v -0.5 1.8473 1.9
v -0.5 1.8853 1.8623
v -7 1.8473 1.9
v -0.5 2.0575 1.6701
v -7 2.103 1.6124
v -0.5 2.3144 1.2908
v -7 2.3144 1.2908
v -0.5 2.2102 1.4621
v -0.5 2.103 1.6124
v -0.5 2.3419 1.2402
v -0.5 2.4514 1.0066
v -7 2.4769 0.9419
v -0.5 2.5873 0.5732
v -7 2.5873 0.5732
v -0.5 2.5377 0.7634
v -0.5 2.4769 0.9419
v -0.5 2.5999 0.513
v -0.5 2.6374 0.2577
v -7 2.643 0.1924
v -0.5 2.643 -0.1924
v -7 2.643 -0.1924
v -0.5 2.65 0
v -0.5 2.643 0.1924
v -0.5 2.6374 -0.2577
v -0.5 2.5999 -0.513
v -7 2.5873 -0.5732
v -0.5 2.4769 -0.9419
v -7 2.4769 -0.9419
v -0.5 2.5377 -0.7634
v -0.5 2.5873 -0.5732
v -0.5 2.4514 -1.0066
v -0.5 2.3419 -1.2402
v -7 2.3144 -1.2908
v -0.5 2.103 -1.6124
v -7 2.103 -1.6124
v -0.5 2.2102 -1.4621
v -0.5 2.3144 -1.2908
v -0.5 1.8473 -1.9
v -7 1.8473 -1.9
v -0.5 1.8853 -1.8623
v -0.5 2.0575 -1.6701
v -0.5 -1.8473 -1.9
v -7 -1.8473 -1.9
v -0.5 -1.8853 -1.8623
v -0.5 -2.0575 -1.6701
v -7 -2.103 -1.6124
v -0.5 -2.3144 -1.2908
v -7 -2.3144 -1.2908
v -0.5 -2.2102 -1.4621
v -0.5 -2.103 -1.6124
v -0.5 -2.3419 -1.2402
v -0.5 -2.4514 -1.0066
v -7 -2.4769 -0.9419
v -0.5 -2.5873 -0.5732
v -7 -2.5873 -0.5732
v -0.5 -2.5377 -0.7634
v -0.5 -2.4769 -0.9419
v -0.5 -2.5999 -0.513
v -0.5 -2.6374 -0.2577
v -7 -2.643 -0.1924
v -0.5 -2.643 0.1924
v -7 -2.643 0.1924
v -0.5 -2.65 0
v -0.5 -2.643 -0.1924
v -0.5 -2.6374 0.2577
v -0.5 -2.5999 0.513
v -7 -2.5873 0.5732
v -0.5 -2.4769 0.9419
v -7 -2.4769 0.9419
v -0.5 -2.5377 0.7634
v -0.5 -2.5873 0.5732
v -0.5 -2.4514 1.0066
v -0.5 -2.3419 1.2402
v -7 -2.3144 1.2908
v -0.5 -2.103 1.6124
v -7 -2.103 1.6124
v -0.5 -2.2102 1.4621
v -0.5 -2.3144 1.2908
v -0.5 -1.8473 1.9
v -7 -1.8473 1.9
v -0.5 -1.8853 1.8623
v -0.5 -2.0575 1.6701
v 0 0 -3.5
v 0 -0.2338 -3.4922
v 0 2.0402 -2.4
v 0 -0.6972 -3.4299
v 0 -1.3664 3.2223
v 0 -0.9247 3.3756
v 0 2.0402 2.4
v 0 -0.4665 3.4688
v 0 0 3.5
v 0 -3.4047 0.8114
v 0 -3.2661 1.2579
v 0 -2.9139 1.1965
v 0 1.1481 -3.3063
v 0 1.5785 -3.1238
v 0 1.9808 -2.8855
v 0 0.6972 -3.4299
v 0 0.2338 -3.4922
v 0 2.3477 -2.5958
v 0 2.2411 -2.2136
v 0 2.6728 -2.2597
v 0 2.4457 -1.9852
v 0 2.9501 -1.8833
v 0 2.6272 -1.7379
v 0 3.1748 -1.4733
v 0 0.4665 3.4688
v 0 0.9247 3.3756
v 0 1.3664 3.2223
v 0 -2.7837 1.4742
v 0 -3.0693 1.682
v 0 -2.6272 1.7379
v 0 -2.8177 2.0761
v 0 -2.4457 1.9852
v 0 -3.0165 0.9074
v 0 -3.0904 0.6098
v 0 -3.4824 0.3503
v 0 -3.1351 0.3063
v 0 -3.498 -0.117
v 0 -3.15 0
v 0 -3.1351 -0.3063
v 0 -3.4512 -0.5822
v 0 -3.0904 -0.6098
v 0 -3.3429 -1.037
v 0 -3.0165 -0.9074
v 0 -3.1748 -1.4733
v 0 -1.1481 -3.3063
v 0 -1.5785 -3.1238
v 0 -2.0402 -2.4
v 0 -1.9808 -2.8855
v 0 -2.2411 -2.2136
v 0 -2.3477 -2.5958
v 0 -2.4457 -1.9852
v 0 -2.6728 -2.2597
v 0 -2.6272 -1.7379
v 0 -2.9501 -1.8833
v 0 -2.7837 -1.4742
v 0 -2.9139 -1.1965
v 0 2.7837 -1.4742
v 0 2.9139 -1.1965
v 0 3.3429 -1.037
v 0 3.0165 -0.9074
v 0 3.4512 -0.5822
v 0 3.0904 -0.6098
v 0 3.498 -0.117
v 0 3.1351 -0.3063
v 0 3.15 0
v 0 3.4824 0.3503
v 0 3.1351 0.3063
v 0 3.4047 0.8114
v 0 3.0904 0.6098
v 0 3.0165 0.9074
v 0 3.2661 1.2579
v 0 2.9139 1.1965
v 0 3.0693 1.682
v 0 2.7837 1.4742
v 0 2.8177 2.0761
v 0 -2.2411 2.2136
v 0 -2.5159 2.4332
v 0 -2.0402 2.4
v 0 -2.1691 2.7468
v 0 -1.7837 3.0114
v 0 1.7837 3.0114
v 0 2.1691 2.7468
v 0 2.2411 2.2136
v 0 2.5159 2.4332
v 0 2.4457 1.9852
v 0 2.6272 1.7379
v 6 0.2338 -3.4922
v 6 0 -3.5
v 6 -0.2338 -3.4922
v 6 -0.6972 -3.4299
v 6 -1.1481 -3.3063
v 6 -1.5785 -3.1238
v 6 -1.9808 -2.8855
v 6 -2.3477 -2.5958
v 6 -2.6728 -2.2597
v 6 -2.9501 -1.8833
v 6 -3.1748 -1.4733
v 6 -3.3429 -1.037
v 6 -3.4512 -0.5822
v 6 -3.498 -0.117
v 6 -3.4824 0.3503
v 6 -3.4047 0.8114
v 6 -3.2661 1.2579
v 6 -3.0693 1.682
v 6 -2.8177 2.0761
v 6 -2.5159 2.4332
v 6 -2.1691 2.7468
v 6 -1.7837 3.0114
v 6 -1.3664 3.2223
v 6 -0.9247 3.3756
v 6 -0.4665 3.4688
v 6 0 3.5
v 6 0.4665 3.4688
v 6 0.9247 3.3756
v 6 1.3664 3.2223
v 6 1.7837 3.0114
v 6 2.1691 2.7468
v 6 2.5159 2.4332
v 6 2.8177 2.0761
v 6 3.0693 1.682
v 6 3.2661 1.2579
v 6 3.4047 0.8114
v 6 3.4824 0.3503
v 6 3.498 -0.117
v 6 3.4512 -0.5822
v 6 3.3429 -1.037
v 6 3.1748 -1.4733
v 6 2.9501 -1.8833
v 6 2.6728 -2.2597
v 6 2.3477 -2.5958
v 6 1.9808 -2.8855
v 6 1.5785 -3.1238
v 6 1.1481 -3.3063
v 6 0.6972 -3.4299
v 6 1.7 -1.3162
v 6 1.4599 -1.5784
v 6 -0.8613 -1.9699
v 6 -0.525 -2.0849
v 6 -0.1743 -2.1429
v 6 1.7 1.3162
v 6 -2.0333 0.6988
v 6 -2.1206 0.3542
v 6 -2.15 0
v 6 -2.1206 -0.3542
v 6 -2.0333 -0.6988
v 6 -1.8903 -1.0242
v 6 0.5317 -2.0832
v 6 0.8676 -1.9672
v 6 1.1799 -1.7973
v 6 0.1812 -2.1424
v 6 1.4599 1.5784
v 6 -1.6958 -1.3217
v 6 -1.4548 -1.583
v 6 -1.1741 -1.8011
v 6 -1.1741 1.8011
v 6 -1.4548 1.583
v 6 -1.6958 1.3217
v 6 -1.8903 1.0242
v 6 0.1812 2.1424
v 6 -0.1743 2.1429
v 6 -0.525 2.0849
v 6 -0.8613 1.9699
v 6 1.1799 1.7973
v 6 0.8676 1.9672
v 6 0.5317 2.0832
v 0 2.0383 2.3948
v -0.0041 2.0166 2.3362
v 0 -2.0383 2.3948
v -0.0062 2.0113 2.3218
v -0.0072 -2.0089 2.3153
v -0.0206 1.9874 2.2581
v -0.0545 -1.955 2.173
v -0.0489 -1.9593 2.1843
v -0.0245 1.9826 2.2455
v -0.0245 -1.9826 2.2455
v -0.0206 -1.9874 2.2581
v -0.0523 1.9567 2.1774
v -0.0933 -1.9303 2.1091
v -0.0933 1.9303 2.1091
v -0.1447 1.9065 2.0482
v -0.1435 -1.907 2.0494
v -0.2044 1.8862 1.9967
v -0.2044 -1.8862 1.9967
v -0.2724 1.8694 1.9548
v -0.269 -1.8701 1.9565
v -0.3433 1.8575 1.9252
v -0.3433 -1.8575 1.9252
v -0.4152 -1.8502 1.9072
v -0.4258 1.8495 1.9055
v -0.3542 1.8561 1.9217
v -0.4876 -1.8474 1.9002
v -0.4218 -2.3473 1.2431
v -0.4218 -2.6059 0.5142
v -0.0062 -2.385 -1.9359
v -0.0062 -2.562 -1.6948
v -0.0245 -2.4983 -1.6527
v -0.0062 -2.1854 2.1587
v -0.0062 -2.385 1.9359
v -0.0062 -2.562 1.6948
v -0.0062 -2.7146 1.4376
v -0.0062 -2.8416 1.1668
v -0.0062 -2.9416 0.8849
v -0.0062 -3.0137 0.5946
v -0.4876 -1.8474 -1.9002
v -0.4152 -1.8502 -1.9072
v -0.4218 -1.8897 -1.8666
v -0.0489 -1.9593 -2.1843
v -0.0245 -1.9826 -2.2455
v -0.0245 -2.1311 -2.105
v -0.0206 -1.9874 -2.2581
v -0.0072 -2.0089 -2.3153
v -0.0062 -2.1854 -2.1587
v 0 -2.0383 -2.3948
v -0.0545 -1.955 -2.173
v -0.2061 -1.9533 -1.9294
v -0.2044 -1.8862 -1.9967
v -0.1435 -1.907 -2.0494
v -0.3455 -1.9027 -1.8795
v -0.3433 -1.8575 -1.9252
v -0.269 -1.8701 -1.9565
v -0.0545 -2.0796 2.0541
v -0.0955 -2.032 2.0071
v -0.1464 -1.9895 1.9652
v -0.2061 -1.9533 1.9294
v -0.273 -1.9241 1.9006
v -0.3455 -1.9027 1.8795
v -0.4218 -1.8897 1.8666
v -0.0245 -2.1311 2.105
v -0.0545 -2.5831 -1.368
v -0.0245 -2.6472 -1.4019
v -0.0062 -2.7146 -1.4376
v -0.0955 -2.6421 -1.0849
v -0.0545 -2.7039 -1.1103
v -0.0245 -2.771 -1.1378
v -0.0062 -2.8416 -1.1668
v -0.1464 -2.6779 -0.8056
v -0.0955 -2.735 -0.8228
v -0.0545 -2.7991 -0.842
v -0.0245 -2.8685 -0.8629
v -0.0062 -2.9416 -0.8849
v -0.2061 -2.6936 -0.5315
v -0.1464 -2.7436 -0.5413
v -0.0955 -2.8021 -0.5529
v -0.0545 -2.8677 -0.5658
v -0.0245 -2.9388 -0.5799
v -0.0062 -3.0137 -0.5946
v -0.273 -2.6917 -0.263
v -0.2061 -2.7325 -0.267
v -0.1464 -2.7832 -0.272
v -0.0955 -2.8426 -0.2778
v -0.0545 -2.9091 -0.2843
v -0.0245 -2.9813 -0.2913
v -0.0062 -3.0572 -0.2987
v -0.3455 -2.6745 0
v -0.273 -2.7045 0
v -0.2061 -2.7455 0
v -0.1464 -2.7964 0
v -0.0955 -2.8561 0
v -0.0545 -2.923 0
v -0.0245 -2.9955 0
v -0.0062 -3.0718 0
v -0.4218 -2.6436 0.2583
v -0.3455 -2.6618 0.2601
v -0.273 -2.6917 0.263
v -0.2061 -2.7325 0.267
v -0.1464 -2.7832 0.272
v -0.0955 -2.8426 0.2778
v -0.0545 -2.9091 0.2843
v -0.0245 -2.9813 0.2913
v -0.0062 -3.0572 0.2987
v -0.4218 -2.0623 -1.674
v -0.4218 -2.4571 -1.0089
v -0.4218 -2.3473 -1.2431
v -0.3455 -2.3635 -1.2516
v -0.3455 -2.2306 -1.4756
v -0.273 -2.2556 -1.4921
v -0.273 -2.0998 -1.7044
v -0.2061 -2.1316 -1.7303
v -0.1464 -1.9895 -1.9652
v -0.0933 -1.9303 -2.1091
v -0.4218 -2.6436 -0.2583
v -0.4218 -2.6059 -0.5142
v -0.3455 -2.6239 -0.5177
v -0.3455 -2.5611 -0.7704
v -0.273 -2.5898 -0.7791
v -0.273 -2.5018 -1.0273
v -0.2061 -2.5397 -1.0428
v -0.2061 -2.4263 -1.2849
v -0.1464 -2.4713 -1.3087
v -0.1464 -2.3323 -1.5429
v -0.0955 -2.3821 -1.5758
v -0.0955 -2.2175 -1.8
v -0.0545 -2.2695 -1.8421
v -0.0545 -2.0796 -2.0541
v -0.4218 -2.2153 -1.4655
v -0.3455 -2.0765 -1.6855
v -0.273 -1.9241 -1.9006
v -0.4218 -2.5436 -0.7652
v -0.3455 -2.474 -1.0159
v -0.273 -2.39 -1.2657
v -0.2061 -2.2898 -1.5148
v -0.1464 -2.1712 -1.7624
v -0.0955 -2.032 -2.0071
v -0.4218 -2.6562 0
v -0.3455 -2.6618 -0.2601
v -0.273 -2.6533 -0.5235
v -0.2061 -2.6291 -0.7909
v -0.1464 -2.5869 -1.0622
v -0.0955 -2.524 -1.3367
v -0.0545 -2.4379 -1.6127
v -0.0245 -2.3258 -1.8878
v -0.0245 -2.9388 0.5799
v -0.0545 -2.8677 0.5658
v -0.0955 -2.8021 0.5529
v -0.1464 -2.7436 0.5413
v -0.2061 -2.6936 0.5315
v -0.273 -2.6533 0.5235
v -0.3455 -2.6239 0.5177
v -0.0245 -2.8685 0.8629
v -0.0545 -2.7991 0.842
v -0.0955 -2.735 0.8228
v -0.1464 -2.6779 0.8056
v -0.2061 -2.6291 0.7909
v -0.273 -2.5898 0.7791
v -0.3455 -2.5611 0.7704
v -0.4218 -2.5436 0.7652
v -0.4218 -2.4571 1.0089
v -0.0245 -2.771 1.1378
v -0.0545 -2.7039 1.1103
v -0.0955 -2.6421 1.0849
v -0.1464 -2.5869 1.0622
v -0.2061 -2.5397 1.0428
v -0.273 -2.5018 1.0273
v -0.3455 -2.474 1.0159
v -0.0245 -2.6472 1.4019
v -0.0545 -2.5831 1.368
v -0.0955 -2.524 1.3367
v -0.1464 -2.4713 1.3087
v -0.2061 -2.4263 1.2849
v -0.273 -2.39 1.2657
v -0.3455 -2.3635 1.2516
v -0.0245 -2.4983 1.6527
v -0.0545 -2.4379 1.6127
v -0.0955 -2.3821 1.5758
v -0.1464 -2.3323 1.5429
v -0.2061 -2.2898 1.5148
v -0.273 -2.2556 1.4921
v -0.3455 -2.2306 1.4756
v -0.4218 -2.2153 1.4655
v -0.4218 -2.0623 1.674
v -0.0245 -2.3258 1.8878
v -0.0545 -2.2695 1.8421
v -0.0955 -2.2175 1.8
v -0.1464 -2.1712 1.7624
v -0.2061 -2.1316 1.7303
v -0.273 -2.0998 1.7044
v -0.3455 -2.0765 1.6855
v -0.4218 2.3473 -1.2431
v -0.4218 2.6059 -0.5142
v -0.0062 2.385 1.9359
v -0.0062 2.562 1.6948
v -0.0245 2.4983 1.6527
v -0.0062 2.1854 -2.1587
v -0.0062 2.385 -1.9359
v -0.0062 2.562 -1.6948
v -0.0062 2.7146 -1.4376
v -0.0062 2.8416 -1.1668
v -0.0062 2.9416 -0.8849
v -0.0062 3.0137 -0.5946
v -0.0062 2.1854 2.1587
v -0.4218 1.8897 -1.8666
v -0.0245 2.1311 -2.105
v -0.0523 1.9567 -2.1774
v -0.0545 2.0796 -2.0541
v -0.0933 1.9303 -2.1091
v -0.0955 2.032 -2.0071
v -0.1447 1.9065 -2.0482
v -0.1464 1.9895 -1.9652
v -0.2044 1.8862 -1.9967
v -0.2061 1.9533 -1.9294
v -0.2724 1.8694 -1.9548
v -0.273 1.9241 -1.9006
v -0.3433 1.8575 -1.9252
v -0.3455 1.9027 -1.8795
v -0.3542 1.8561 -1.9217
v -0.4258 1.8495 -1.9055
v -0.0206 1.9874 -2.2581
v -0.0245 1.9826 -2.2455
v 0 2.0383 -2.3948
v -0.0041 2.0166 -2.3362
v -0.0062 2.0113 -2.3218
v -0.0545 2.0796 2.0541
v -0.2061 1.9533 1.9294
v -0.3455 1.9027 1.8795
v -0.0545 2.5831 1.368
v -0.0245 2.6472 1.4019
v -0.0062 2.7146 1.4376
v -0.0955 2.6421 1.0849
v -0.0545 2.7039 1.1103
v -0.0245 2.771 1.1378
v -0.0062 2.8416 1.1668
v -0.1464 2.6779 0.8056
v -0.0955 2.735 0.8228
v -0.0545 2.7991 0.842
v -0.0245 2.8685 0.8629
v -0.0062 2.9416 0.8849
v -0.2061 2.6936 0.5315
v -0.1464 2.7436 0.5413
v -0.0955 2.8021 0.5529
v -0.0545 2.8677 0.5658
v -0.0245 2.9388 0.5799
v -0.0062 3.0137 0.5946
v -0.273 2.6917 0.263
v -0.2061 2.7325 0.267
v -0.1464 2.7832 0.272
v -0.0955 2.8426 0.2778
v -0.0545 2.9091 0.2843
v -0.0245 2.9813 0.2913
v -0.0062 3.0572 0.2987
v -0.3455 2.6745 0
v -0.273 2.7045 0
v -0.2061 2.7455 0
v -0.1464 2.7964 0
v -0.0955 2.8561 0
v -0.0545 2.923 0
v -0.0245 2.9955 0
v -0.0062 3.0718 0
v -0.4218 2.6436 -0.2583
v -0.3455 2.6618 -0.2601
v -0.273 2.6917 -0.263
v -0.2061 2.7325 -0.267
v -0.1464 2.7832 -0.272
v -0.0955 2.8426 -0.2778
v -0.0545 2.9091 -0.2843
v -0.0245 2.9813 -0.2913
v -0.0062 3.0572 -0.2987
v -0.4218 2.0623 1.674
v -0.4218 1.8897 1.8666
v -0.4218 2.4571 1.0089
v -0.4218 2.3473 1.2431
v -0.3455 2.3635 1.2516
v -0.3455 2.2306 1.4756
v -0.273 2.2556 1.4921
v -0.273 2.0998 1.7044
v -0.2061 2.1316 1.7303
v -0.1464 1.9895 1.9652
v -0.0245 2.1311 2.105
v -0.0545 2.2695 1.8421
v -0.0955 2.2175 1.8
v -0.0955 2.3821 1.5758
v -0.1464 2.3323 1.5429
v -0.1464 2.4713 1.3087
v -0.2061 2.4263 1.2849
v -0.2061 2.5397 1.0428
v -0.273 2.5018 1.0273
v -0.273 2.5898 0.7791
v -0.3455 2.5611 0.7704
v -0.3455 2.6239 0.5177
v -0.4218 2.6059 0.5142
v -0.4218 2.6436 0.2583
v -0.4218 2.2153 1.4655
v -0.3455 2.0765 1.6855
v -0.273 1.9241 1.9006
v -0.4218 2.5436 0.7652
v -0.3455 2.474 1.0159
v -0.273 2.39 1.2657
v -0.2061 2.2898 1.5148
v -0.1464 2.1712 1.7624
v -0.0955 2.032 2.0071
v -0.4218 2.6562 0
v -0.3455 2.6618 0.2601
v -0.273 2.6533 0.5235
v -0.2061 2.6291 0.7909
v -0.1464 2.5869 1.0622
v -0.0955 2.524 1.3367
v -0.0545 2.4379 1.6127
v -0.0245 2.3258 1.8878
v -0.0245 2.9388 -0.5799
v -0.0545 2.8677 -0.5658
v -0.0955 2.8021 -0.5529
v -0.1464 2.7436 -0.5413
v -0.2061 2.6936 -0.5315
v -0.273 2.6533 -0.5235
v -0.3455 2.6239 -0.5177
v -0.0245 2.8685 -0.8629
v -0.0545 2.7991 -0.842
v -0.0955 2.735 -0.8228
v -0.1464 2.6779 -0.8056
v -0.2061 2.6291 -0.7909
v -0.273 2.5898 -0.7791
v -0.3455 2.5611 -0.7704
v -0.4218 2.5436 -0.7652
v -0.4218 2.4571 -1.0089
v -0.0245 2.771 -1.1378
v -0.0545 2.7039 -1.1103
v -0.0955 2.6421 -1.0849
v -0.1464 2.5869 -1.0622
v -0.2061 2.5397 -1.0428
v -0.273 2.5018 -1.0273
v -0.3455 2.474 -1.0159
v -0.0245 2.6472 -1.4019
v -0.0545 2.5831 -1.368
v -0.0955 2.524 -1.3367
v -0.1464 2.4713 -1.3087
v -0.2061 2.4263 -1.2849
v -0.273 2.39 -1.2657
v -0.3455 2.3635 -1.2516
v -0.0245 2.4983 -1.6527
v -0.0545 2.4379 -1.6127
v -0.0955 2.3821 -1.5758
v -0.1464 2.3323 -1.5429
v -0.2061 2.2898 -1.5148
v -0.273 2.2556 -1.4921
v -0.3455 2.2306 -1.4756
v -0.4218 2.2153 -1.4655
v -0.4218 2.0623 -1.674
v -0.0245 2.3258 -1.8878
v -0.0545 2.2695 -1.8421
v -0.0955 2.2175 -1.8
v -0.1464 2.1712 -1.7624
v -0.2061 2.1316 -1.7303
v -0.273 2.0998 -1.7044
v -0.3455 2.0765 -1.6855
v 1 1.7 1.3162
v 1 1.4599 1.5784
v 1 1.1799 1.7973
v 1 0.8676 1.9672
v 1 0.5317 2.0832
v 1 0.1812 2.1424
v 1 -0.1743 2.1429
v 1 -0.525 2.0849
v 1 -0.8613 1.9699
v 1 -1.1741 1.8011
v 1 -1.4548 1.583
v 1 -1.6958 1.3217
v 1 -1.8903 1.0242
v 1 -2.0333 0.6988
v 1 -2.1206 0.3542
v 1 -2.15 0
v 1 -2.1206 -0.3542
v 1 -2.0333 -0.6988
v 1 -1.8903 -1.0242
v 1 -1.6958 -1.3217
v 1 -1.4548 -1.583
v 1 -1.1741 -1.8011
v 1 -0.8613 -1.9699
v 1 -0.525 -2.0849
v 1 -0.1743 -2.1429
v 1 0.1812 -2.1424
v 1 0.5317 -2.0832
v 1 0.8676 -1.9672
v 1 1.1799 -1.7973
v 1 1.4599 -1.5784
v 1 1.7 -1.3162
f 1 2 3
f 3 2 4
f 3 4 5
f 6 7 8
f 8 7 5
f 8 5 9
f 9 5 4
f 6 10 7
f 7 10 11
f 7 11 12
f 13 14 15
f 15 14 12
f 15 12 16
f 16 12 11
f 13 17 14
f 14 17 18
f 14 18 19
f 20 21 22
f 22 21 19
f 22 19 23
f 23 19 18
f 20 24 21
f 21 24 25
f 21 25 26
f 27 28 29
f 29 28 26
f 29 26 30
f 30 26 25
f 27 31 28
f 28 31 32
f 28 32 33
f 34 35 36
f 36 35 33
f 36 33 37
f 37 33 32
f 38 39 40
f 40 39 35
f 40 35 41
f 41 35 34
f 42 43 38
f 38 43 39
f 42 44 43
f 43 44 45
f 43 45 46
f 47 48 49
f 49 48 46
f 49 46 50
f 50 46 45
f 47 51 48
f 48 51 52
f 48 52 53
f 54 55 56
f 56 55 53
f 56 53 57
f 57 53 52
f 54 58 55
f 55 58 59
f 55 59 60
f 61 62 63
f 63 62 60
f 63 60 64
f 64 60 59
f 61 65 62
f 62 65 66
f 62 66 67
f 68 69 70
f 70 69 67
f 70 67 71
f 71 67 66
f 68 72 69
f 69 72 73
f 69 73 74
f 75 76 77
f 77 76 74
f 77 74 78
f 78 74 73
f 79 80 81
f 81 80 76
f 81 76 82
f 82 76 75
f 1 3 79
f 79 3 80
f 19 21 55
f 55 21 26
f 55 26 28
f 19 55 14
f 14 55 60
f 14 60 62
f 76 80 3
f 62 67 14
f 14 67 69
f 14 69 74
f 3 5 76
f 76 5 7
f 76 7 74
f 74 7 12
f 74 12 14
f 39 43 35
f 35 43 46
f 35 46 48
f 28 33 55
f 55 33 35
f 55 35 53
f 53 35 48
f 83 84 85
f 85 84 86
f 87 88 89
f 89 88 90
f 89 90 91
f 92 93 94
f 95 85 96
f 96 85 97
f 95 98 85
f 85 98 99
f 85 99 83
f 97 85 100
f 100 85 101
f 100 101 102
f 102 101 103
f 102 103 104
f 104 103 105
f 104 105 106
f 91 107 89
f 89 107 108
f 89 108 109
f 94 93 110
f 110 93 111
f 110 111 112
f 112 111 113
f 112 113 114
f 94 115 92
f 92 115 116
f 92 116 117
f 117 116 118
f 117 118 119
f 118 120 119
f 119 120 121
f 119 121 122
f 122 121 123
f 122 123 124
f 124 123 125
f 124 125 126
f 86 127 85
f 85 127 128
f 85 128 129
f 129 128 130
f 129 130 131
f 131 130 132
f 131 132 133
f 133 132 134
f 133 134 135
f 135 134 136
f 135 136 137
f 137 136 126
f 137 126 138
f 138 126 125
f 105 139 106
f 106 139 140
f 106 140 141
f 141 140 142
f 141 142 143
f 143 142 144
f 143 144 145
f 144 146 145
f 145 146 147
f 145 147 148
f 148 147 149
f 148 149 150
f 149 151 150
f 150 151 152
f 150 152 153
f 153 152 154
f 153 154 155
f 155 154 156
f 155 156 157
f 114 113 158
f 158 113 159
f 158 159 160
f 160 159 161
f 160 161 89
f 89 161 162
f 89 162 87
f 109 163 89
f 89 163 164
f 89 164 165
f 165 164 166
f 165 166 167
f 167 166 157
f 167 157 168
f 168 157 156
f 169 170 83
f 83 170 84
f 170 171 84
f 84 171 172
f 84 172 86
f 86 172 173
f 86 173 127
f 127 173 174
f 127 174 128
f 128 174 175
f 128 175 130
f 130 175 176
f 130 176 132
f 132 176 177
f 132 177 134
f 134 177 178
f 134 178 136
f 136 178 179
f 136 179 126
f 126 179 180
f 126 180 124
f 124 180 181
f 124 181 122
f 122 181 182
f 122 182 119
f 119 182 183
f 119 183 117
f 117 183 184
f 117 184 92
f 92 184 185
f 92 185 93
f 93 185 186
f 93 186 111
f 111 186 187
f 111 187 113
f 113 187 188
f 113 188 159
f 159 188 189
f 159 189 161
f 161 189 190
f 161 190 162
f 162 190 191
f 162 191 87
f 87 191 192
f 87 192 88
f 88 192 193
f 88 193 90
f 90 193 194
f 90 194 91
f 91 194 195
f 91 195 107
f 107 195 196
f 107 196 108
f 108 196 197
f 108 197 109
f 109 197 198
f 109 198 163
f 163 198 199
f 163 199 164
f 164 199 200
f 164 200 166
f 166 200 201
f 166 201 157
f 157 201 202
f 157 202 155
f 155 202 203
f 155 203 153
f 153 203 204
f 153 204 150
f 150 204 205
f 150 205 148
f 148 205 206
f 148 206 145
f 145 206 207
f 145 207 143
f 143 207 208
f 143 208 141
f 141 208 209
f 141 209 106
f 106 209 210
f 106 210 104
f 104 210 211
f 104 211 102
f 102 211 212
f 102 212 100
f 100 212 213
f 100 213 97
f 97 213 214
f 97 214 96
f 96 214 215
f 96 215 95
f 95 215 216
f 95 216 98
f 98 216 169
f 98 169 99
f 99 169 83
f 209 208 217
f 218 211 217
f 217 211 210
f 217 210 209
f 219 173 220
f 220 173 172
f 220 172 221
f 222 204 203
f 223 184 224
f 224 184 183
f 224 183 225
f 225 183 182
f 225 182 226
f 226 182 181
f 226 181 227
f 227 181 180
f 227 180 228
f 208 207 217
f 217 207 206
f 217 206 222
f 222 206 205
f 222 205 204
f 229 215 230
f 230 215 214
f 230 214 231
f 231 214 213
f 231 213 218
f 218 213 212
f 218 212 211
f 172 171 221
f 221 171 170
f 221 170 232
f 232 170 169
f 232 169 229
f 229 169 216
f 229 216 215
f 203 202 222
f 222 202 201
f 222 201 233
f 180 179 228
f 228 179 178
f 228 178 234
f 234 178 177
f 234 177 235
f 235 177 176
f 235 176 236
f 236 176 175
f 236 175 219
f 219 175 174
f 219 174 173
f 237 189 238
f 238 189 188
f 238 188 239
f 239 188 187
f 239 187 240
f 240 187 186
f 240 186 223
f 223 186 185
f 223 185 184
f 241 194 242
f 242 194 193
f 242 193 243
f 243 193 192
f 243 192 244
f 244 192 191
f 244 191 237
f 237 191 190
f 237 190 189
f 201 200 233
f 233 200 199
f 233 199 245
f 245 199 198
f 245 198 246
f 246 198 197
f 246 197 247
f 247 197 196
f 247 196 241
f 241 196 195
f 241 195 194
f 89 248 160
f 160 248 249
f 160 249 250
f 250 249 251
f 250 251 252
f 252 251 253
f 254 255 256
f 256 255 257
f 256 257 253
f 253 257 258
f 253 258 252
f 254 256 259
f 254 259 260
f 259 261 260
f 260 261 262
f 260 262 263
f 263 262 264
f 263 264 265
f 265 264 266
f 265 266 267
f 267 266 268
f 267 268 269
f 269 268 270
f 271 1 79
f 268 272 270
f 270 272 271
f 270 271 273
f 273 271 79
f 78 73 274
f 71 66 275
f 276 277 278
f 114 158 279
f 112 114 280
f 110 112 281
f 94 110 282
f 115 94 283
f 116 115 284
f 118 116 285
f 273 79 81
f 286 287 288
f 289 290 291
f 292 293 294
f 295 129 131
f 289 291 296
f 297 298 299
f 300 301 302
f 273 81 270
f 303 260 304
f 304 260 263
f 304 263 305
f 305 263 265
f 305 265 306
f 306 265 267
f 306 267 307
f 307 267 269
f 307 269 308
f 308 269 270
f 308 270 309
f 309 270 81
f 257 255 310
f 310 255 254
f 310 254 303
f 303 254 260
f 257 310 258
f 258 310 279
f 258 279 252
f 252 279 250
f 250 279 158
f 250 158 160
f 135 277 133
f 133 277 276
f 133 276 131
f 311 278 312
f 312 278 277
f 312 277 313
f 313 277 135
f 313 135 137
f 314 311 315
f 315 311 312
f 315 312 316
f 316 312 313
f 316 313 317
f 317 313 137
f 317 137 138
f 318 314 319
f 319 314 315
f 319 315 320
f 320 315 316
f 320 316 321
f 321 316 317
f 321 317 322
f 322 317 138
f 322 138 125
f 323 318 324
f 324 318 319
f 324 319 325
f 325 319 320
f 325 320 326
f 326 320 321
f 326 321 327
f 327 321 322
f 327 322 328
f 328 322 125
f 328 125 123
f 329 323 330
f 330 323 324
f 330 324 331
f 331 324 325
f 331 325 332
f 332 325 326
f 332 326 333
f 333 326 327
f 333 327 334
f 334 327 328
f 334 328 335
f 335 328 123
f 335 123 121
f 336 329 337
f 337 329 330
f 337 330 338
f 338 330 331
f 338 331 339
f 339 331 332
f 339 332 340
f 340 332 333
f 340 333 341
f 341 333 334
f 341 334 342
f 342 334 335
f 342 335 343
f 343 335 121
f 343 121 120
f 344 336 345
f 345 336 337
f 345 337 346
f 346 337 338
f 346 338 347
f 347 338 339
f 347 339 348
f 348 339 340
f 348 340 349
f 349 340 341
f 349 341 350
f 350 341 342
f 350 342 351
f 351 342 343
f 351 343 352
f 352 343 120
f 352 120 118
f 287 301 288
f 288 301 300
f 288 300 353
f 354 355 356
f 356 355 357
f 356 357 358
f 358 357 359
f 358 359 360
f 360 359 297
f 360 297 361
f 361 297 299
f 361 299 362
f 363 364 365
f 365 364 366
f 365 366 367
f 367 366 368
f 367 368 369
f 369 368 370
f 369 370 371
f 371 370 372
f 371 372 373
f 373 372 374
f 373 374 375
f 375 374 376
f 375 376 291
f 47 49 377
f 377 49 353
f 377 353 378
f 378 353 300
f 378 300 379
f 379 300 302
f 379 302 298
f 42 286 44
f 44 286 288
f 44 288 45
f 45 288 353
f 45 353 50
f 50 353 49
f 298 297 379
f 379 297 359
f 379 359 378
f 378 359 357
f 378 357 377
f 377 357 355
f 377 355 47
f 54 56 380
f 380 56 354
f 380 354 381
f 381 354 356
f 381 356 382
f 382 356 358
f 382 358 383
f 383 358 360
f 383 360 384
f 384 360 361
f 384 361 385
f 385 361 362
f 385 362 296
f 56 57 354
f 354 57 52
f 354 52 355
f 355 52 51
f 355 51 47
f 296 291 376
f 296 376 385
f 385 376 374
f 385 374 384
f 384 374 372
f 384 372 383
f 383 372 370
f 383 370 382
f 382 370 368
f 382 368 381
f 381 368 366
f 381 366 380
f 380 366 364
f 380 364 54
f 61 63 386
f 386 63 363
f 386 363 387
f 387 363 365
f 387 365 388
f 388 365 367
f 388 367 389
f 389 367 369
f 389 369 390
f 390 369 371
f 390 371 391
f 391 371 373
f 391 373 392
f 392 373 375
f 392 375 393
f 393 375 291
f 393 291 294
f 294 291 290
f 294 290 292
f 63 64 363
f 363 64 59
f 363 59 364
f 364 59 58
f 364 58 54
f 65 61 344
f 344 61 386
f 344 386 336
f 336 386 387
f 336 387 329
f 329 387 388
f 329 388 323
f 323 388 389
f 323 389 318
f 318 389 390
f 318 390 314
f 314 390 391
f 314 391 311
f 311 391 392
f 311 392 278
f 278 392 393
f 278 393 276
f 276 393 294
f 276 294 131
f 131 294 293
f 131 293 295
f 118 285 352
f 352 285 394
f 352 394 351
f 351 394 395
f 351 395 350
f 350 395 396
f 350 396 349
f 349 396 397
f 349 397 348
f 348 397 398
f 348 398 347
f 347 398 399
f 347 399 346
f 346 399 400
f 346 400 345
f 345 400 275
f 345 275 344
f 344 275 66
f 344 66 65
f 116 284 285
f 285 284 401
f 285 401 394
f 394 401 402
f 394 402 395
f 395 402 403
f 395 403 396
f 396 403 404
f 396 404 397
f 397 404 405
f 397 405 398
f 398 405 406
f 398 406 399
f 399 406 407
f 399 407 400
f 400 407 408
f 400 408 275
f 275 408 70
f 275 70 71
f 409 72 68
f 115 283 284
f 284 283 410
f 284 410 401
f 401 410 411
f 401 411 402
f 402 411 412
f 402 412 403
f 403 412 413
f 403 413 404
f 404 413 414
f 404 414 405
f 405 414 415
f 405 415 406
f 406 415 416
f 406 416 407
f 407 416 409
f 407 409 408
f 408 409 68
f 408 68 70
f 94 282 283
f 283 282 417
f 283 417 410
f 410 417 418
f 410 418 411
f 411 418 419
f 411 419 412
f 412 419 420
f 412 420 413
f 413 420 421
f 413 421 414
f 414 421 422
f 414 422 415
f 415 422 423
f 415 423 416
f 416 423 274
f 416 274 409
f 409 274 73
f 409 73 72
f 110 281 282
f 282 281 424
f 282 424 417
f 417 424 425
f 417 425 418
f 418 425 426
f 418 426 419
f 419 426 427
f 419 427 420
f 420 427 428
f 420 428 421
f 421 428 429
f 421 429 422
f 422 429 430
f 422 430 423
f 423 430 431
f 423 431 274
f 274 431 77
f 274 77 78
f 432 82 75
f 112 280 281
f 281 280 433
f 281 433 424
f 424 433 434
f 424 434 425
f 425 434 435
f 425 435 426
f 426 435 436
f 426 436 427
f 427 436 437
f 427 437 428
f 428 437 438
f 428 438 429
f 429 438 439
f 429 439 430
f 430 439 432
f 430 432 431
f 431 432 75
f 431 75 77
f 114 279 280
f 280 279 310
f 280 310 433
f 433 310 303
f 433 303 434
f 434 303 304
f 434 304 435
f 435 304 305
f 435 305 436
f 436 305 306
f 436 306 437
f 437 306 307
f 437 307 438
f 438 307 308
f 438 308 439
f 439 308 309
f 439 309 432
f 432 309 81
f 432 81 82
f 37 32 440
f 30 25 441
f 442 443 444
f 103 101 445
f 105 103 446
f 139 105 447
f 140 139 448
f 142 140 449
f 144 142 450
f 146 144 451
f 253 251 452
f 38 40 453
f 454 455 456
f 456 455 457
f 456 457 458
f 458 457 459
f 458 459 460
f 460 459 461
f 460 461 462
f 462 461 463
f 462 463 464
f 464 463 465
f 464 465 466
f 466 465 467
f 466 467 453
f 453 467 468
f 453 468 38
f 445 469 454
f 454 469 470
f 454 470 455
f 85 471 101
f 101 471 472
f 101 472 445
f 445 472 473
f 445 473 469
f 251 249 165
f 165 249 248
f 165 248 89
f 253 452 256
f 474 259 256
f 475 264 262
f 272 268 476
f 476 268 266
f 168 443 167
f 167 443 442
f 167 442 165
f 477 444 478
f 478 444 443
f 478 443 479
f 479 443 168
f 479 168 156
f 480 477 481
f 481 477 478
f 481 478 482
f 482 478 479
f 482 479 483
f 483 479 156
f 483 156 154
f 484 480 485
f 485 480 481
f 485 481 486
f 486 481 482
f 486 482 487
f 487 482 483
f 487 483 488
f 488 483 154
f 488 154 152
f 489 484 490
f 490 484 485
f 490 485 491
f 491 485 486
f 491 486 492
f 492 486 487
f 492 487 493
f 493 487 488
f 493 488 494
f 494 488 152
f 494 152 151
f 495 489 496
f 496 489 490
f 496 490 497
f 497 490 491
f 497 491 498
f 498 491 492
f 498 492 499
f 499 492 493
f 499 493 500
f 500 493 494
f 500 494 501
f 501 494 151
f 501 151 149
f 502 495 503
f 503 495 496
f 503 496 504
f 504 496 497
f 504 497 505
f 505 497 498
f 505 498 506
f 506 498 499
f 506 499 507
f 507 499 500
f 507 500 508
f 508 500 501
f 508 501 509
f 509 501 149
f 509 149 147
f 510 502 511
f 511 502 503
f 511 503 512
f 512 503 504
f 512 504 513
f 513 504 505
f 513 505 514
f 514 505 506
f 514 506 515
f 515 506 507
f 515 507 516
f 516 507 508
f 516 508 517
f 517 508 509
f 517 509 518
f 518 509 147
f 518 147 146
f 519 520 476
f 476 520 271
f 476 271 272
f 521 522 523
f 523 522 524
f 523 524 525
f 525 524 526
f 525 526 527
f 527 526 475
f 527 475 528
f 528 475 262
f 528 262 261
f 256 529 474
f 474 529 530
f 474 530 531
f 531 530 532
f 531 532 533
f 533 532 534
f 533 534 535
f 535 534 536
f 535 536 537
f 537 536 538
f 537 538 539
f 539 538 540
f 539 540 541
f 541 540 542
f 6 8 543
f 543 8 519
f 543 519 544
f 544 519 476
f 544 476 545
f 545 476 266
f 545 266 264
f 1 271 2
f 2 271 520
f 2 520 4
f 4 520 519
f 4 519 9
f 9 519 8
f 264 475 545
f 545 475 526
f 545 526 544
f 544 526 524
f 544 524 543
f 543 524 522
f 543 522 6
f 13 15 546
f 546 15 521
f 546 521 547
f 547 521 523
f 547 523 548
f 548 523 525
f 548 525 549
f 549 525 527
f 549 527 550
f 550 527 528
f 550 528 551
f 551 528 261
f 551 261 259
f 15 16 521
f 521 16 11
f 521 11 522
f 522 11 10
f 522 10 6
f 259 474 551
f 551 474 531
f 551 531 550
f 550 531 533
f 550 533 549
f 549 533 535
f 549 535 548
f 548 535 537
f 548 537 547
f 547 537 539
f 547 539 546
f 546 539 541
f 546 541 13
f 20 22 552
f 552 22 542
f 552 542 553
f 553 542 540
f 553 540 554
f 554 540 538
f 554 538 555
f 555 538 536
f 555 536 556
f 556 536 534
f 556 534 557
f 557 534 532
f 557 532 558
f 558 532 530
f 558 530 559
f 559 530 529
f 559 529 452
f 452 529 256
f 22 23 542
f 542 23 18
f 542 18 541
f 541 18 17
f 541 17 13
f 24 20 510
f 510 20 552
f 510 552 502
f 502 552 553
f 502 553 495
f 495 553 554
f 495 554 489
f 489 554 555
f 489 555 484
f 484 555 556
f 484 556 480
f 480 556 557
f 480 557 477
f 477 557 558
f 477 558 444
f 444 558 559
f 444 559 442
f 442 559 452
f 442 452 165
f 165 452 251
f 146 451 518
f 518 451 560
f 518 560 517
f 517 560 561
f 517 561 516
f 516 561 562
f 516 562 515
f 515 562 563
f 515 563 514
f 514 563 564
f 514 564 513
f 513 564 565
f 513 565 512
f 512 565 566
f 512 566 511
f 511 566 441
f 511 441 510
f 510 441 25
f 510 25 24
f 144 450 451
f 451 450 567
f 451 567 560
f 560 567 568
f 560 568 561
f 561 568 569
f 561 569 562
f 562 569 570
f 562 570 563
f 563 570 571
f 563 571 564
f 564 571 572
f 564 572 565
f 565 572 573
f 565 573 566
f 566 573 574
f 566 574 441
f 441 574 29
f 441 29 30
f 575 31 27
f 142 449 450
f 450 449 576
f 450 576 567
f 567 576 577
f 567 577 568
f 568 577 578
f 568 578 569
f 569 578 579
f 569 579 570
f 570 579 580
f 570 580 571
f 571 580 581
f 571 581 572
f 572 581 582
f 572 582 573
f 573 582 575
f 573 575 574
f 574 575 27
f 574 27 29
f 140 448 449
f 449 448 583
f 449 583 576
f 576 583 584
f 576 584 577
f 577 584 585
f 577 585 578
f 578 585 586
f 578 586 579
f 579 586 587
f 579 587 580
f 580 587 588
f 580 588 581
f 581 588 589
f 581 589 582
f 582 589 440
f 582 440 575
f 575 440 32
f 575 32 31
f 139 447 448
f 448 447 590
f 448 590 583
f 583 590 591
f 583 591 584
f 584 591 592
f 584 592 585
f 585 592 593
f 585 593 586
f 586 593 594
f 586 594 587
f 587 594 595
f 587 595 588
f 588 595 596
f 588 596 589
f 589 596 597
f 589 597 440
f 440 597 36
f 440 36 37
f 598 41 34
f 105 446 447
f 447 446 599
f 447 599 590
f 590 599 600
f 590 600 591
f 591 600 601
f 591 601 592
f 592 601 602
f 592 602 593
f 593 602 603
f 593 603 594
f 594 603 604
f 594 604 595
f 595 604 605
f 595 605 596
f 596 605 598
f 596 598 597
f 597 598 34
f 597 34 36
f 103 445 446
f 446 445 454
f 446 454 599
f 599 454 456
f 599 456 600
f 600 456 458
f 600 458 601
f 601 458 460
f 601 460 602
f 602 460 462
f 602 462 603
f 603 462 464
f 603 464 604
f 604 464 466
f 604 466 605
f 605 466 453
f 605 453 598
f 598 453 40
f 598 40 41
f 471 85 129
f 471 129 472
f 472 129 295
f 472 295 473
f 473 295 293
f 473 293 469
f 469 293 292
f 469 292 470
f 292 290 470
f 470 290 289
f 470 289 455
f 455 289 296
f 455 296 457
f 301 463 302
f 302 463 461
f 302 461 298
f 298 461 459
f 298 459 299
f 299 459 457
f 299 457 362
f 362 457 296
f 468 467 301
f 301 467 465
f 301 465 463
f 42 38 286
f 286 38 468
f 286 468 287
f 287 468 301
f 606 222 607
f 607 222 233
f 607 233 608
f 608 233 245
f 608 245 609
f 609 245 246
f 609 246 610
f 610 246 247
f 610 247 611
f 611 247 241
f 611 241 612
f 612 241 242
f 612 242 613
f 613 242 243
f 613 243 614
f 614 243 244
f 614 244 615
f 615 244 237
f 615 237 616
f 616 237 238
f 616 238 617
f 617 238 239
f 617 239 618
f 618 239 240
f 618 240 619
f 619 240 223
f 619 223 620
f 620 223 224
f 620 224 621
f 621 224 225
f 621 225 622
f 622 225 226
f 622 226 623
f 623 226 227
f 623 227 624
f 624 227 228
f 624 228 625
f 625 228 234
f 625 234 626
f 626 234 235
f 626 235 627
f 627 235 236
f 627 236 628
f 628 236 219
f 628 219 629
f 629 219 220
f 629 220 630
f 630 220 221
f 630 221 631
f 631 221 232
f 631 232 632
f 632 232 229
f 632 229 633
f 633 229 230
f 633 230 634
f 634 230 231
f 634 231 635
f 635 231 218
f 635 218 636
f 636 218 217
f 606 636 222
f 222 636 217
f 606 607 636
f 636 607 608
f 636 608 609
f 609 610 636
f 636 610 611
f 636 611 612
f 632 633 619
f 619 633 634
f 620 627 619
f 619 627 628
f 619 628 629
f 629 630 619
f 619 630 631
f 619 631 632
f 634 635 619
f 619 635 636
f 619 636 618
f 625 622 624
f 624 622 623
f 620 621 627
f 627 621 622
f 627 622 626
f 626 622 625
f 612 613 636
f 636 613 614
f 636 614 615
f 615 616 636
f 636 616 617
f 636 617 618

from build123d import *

# Parameters (mm, degrees)
BOSS_EXTRUDE1_DEPTH = 7
SKETCH5_R           = 3.5
BOSS_EXTRUDE2_DEPTH = 6
FILLET1_R           = 0.5
CUT_EXTRUDE1_DEPTH  = 5


with BuildPart() as part:
    # Sketch1 → Boss-Extrude1 (new body)
    with BuildSketch(Plane(origin=(0, 0, 0), x_dir=(0, 0, -1), z_dir=(1, 0, 0))):
        with BuildLine():
            Line((-1.9, 1.84729532), (-1.9, -1.84729532))
            ThreePointArc((-1.9, -1.84729532), (0, -2.65), (1.9, -1.84729532))
            Line((1.9, -1.84729532), (1.9, 1.84729532))
            ThreePointArc((1.9, 1.84729532), (0, 2.65), (-1.9, 1.84729532))
        make_face()
    extrude(amount=-BOSS_EXTRUDE1_DEPTH)

    # Sketch5 → Boss-Extrude2 (add)
    with BuildSketch(Plane(origin=(0, 0, 0), x_dir=(0, 0, -1), z_dir=(1, 0, 0))):
        Circle(SKETCH5_R)
    extrude(amount=BOSS_EXTRUDE2_DEPTH)

    # Fillet1
    fillet1_edges = [part.edges().sort_by_distance(p)[0] for p in [
        (0, 0, -1.9),
        (0, -2.65, 0),
        (0, 0, 1.9),
        (0, 2.65, 0),
    ]]
    fillet(fillet1_edges, radius=FILLET1_R)

    # Sketch7 → Cut-Extrude1 (cut)
    with BuildSketch(Plane(origin=(6, 0, 0), x_dir=(0, 0, -1), z_dir=(1, 0, 0))):
        with BuildLine():
            Line((-1.316244658, 1.7), (1.316244658, 1.7))
            ThreePointArc((1.316244658, 1.7), (0, -2.15), (-1.316244658, 1.7))
        make_face()
    extrude(amount=-CUT_EXTRUDE1_DEPTH, mode=Mode.SUBTRACT)


solid = part.part
